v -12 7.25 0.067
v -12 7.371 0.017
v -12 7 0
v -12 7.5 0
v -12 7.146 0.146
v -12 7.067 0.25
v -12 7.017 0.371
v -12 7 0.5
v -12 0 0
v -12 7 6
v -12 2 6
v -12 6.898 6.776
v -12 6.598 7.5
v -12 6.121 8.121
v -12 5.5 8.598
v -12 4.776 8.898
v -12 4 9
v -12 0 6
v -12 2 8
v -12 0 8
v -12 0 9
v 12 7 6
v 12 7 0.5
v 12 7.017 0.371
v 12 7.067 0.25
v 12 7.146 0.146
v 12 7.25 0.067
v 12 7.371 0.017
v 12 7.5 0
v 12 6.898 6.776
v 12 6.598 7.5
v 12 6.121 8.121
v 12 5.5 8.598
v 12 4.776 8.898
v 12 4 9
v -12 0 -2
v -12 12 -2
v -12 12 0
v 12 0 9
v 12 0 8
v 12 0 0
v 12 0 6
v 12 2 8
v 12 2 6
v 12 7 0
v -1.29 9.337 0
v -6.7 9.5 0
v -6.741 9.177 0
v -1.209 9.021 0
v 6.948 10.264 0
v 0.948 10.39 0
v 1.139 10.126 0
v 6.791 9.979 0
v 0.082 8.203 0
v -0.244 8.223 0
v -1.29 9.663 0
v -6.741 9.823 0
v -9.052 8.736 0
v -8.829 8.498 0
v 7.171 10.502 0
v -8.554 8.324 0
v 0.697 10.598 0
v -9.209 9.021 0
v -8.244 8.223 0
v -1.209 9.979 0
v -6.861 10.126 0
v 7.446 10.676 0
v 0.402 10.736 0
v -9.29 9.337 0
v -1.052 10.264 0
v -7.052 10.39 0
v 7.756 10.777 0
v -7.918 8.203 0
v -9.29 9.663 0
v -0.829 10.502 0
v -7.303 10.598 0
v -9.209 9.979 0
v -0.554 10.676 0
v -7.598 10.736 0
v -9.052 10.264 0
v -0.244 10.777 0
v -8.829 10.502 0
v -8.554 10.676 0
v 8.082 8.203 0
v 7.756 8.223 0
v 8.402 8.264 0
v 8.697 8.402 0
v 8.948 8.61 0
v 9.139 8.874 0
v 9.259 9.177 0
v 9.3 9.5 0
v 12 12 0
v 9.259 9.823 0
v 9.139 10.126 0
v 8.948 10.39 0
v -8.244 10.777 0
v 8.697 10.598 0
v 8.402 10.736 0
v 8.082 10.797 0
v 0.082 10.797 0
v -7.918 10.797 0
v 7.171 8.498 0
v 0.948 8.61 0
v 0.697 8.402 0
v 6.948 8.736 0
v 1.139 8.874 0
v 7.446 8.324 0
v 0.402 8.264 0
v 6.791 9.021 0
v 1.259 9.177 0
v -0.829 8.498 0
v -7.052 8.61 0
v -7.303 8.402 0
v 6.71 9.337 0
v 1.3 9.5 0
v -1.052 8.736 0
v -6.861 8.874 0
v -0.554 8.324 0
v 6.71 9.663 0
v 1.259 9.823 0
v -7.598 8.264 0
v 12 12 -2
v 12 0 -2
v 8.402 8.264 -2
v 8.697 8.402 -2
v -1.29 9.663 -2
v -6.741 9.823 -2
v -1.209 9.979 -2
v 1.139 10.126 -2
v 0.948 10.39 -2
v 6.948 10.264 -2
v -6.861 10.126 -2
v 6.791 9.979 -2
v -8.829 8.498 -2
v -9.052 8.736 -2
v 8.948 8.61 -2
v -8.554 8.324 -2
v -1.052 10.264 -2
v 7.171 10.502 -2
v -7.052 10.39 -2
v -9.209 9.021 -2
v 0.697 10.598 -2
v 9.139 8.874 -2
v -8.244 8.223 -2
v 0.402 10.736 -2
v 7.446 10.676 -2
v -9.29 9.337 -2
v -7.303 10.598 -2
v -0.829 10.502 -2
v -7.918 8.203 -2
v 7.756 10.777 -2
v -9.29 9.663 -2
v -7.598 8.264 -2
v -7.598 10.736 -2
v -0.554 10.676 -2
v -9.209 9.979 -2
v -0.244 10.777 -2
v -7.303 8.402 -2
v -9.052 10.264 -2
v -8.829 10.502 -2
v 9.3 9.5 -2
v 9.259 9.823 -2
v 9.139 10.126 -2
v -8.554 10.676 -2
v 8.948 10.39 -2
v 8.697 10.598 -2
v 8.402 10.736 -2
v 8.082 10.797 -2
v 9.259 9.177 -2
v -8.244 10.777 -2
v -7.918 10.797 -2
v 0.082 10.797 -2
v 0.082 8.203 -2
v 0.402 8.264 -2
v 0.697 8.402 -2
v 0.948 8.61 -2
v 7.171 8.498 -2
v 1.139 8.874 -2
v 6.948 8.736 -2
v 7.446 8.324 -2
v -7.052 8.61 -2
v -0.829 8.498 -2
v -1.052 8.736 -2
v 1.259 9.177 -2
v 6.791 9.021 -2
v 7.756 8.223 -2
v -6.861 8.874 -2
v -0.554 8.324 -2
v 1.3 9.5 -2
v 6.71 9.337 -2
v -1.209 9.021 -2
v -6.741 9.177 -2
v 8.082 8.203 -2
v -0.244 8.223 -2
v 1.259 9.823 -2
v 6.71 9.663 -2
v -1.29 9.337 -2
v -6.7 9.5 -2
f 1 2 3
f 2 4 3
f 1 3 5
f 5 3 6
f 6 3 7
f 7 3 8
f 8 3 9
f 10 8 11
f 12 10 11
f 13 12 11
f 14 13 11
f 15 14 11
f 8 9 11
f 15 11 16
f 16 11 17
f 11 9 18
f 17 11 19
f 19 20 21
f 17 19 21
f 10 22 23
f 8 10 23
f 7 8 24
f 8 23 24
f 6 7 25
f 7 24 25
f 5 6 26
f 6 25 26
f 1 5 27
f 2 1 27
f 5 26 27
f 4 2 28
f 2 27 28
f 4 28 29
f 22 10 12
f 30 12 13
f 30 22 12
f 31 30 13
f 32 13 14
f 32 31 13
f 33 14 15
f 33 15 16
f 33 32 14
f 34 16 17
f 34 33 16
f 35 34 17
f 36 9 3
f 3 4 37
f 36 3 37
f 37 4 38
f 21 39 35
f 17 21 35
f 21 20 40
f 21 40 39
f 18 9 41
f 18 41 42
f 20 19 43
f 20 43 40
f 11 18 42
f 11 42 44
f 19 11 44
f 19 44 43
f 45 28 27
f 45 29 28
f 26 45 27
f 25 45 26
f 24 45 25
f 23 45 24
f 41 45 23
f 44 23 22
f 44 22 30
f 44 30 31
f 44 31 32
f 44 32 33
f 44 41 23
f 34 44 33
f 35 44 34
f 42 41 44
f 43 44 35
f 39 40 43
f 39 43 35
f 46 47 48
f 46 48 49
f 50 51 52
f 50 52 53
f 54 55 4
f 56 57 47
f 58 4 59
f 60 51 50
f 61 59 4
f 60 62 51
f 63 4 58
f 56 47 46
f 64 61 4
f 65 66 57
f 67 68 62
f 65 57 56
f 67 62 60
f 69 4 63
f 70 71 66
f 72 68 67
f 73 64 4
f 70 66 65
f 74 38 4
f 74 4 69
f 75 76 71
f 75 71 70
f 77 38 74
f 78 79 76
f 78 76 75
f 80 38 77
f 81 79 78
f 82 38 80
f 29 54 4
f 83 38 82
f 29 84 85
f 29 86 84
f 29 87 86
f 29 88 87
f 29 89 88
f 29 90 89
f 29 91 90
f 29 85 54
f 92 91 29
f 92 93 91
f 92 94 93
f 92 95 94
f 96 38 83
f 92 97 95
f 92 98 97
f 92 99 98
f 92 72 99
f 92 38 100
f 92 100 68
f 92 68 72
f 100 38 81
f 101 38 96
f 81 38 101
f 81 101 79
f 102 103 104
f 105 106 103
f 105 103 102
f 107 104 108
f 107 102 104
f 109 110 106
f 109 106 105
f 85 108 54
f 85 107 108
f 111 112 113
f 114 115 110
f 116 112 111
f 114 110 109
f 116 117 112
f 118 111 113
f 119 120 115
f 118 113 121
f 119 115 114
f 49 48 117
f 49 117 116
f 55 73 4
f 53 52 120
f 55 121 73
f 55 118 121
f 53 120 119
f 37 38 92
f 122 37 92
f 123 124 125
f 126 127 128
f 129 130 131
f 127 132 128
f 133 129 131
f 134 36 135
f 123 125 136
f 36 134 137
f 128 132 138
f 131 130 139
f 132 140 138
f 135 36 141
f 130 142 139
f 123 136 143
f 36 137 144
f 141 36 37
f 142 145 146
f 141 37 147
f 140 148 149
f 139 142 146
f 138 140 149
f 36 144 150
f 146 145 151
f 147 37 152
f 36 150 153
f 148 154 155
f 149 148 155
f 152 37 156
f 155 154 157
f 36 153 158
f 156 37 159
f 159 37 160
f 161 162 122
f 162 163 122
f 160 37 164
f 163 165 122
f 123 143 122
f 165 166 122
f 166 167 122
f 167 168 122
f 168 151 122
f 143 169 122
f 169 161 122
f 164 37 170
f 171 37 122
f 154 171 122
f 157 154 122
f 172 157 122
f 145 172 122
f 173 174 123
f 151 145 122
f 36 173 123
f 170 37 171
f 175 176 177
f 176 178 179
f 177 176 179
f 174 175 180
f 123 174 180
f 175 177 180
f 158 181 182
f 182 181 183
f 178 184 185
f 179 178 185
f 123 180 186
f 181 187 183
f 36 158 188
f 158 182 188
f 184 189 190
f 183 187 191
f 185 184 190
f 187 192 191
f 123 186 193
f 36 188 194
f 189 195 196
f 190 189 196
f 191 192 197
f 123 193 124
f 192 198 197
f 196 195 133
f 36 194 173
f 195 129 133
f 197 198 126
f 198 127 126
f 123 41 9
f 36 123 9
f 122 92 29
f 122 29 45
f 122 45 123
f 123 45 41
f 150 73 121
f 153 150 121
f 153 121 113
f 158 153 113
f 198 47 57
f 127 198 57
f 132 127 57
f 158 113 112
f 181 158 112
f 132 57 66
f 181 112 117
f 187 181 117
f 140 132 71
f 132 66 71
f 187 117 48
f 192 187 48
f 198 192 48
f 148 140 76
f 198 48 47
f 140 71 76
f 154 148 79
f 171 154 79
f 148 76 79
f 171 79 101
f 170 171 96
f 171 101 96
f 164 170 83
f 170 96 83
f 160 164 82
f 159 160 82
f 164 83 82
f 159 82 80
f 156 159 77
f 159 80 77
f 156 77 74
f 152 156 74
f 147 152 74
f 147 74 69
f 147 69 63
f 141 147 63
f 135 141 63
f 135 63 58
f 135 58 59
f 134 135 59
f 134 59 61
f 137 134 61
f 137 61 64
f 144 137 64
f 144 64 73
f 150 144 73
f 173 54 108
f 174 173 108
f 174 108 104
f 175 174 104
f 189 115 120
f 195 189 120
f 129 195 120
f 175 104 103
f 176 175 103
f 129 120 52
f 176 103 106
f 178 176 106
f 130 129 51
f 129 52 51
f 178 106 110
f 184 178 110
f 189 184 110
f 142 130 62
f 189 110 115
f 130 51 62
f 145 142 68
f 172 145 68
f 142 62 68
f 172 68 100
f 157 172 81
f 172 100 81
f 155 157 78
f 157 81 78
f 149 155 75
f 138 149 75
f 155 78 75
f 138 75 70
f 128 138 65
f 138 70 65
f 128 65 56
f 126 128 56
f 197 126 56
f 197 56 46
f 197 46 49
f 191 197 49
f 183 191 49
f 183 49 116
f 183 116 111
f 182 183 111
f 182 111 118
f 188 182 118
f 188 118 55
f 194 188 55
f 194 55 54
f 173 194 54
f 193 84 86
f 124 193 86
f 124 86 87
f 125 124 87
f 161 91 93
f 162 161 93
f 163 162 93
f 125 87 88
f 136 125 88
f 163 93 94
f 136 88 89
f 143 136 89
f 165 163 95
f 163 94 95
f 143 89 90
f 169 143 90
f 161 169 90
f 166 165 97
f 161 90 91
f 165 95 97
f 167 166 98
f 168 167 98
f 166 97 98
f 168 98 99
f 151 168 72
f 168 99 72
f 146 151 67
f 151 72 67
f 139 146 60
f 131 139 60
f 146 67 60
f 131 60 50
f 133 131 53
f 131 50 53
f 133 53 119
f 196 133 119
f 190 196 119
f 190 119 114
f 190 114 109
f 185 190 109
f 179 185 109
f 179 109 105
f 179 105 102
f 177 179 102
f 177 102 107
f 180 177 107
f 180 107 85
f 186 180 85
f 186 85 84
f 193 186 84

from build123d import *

# Parameters (mm, degrees)
PAD001_DEPTH = 12
SKETCH_W     = 24
SKETCH_H     = 12
SKETCH_R     = 1.3
PAD_DEPTH    = 2
FILLET_R     = 3
FILLET001_R  = 0.5


with BuildPart() as pad001:
    # Sketch001 → Pad001 (new body, symmetric)
    with BuildSketch(Plane.YZ):
        Polygon((0, 0), (0, 6), (2, 6), (2, 8), (0, 8), (0, 9), (7, 9), (7, 0), align=None)
    extrude(amount=PAD001_DEPTH, both=True)


with BuildPart() as fillet001:
    # Sketch → Pad (new body)
    with BuildSketch(Plane.XY):
        with Locations((0, 6)):
            Rectangle(SKETCH_W, SKETCH_H)
        with Locations((-8, 9.5)):
            Circle(SKETCH_R, mode=Mode.SUBTRACT)
        with Locations((0, 9.5)):
            Circle(SKETCH_R, mode=Mode.SUBTRACT)
        with Locations((8, 9.5)):
            Circle(SKETCH_R, mode=Mode.SUBTRACT)
    extrude(amount=-PAD_DEPTH)

    # Fusion: union Pad001
    add(pad001.part)

    # Fillet
    fillet_edges = [fillet001.edges().sort_by_distance(p)[0] for p in [
        (0, 7, 9),
    ]]
    fillet(fillet_edges, radius=FILLET_R)

    # Fillet001
    fillet001_edges = [fillet001.edges().sort_by_distance(p)[0] for p in [
        (0, 7, 0),
    ]]
    fillet(fillet001_edges, radius=FILLET001_R)


solid = fillet001.part
